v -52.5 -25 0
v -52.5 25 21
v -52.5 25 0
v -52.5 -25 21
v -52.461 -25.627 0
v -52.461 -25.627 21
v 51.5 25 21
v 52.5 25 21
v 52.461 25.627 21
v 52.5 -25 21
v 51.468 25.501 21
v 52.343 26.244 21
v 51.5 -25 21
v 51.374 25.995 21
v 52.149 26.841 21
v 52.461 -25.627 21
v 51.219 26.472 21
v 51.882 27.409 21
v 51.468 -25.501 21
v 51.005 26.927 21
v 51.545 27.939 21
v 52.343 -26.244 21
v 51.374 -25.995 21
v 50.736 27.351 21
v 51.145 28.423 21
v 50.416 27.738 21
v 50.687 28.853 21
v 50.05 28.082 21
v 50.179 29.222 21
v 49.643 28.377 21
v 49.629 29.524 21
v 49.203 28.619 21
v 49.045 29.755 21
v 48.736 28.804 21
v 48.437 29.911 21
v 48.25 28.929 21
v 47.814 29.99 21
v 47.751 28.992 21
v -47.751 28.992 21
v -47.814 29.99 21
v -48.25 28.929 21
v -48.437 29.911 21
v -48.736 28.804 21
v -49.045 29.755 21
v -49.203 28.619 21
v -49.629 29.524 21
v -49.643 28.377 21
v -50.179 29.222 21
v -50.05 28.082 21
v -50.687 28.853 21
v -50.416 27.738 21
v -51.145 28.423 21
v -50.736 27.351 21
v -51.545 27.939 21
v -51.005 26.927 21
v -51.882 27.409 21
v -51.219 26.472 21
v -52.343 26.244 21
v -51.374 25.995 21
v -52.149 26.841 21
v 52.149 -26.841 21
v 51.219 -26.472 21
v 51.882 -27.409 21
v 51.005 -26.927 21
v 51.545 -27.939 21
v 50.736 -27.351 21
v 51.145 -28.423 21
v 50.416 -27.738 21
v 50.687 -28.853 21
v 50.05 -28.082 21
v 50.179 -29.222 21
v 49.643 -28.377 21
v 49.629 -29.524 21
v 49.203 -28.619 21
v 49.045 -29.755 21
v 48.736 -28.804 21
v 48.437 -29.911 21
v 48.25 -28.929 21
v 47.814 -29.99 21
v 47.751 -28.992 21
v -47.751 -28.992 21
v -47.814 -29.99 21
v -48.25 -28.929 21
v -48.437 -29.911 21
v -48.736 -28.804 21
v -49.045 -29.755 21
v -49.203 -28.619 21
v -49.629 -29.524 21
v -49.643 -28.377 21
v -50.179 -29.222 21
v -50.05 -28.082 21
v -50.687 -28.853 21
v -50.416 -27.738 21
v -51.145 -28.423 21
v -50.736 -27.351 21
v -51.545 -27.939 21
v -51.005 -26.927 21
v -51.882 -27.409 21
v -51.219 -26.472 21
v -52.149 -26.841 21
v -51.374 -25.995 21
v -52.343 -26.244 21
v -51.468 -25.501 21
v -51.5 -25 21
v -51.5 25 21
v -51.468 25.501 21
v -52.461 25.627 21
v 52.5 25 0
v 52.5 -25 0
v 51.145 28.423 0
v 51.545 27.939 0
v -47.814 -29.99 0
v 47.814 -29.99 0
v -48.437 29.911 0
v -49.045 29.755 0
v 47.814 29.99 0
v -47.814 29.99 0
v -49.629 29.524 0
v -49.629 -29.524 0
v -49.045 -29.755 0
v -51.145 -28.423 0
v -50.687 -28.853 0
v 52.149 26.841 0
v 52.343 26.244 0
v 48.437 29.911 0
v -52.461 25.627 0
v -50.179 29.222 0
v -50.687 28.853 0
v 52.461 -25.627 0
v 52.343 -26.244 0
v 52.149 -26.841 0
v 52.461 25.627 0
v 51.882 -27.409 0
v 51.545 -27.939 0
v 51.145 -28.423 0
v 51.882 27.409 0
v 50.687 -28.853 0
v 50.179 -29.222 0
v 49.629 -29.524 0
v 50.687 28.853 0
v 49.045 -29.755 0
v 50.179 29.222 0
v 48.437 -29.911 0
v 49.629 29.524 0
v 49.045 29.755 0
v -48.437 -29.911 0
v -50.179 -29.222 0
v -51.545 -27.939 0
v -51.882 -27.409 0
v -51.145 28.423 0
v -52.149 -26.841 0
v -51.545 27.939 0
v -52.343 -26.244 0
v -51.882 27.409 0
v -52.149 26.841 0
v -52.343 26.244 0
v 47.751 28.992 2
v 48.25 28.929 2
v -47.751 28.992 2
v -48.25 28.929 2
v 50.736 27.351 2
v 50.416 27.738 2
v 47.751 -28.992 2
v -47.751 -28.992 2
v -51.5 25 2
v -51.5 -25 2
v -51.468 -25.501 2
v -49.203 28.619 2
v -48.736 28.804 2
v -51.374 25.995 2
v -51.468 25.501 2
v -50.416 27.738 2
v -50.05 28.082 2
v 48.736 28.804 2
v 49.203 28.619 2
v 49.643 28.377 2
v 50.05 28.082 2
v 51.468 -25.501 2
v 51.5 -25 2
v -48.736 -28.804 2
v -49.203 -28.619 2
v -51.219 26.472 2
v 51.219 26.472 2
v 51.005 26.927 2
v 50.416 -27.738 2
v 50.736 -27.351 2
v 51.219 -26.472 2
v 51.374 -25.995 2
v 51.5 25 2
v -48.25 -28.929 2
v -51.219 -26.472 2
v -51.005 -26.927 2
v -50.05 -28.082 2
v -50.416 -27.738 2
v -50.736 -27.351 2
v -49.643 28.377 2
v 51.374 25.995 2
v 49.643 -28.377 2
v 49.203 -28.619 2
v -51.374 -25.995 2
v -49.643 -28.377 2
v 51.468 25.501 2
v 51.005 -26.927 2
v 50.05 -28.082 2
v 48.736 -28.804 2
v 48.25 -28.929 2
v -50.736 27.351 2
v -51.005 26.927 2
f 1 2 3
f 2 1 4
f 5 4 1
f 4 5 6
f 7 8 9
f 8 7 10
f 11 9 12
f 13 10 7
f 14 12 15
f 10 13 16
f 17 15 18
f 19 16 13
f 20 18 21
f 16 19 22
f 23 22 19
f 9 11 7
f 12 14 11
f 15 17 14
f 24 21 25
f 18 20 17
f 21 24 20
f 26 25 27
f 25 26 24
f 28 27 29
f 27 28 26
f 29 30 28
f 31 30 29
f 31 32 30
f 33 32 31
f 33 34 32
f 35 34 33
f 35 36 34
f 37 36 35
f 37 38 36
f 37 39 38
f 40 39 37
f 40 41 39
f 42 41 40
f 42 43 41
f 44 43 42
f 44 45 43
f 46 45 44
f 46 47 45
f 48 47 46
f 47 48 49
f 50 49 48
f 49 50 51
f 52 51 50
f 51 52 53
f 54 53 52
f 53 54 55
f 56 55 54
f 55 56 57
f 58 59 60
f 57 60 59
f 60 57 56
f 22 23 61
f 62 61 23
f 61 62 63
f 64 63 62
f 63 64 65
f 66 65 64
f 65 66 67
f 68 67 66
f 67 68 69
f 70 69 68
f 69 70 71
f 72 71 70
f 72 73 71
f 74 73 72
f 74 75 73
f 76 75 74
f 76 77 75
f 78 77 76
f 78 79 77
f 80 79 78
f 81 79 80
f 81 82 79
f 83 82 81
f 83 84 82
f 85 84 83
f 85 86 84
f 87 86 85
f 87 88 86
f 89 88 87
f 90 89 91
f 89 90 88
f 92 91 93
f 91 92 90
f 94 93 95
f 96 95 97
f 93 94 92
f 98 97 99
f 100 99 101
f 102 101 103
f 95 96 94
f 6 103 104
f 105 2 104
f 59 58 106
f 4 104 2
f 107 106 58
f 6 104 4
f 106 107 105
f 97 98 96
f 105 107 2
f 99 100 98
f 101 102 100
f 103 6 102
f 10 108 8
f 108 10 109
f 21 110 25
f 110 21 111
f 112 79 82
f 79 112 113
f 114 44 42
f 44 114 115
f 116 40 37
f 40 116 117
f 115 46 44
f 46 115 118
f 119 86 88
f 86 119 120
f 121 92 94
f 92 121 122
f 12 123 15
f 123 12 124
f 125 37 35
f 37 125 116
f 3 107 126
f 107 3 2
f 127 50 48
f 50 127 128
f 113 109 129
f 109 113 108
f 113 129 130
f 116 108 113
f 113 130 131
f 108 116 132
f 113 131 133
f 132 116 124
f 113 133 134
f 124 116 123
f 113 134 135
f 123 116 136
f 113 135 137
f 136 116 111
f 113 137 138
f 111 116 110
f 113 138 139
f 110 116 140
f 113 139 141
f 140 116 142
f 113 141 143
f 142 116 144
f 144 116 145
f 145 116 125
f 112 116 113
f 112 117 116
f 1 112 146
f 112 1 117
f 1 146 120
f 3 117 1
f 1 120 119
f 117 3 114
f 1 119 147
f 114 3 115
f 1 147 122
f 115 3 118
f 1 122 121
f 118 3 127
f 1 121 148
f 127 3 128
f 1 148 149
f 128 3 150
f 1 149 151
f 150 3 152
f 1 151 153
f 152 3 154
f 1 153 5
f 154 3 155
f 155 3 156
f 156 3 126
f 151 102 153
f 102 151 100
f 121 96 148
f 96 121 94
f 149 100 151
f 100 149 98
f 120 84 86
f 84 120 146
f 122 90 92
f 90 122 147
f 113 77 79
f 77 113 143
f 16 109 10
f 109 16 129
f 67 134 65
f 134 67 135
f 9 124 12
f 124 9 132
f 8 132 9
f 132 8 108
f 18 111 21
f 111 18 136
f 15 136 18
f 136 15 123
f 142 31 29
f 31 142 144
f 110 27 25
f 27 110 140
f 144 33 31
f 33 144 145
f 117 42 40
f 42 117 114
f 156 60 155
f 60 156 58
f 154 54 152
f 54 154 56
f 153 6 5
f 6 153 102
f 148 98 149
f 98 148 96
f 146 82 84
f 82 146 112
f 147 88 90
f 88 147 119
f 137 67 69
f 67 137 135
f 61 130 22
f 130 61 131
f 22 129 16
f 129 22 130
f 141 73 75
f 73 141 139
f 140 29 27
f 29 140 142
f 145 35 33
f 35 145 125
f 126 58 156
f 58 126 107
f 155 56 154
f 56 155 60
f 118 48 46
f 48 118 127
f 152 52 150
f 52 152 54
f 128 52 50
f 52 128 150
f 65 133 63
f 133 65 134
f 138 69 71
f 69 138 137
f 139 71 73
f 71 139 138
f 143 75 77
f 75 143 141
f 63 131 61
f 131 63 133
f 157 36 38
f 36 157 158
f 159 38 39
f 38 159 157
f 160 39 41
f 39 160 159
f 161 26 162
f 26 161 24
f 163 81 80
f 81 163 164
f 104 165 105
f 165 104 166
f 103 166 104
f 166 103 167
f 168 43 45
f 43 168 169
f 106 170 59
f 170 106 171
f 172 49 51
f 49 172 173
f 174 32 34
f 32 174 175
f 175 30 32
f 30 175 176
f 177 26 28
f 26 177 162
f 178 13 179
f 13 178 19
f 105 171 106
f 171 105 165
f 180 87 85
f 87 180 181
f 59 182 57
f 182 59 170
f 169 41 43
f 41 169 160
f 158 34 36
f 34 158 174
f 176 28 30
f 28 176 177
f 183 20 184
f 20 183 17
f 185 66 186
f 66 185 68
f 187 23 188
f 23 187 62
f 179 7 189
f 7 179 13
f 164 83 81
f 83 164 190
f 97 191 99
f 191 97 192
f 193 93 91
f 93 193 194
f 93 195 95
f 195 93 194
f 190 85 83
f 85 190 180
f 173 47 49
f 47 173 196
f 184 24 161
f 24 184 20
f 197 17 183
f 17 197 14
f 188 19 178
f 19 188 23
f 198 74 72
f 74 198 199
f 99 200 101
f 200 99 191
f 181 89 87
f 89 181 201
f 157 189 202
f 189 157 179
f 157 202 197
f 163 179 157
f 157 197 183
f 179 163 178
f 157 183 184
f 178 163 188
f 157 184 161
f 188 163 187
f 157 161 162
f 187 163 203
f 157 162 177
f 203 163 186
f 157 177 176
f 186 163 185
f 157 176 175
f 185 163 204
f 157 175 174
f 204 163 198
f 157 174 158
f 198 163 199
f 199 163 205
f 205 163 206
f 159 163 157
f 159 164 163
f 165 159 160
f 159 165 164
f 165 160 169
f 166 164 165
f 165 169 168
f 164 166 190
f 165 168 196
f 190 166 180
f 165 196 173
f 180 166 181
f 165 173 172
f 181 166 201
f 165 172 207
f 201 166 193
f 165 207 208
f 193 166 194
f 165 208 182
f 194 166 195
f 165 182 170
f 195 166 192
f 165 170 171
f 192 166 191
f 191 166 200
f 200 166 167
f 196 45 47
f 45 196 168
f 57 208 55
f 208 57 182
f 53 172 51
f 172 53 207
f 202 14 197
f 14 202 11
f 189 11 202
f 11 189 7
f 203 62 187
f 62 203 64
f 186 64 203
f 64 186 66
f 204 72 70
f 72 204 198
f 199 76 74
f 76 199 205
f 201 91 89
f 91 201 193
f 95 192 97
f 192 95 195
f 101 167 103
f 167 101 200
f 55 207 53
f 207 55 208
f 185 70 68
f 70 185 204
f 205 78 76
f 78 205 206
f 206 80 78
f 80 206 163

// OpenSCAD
$fn = 50;


difference() {
	union() {
		hull() {
			translate(v = [-47.5000000000, 25.0000000000, 0]) {
				cylinder(h = 21, r = 5);
			}
			translate(v = [47.5000000000, 25.0000000000, 0]) {
				cylinder(h = 21, r = 5);
			}
			translate(v = [-47.5000000000, -25.0000000000, 0]) {
				cylinder(h = 21, r = 5);
			}
			translate(v = [47.5000000000, -25.0000000000, 0]) {
				cylinder(h = 21, r = 5);
			}
		}
	}
	union() {
		translate(v = [0, 0, 2]) {
			hull() {
				translate(v = [-47.5000000000, 25.0000000000, 0]) {
					cylinder(h = 19, r = 4);
				}
				translate(v = [47.5000000000, 25.0000000000, 0]) {
					cylinder(h = 19, r = 4);
				}
				translate(v = [-47.5000000000, -25.0000000000, 0]) {
					cylinder(h = 19, r = 4);
				}
				translate(v = [47.5000000000, -25.0000000000, 0]) {
					cylinder(h = 19, r = 4);
				}
			}
		}
	}
}
